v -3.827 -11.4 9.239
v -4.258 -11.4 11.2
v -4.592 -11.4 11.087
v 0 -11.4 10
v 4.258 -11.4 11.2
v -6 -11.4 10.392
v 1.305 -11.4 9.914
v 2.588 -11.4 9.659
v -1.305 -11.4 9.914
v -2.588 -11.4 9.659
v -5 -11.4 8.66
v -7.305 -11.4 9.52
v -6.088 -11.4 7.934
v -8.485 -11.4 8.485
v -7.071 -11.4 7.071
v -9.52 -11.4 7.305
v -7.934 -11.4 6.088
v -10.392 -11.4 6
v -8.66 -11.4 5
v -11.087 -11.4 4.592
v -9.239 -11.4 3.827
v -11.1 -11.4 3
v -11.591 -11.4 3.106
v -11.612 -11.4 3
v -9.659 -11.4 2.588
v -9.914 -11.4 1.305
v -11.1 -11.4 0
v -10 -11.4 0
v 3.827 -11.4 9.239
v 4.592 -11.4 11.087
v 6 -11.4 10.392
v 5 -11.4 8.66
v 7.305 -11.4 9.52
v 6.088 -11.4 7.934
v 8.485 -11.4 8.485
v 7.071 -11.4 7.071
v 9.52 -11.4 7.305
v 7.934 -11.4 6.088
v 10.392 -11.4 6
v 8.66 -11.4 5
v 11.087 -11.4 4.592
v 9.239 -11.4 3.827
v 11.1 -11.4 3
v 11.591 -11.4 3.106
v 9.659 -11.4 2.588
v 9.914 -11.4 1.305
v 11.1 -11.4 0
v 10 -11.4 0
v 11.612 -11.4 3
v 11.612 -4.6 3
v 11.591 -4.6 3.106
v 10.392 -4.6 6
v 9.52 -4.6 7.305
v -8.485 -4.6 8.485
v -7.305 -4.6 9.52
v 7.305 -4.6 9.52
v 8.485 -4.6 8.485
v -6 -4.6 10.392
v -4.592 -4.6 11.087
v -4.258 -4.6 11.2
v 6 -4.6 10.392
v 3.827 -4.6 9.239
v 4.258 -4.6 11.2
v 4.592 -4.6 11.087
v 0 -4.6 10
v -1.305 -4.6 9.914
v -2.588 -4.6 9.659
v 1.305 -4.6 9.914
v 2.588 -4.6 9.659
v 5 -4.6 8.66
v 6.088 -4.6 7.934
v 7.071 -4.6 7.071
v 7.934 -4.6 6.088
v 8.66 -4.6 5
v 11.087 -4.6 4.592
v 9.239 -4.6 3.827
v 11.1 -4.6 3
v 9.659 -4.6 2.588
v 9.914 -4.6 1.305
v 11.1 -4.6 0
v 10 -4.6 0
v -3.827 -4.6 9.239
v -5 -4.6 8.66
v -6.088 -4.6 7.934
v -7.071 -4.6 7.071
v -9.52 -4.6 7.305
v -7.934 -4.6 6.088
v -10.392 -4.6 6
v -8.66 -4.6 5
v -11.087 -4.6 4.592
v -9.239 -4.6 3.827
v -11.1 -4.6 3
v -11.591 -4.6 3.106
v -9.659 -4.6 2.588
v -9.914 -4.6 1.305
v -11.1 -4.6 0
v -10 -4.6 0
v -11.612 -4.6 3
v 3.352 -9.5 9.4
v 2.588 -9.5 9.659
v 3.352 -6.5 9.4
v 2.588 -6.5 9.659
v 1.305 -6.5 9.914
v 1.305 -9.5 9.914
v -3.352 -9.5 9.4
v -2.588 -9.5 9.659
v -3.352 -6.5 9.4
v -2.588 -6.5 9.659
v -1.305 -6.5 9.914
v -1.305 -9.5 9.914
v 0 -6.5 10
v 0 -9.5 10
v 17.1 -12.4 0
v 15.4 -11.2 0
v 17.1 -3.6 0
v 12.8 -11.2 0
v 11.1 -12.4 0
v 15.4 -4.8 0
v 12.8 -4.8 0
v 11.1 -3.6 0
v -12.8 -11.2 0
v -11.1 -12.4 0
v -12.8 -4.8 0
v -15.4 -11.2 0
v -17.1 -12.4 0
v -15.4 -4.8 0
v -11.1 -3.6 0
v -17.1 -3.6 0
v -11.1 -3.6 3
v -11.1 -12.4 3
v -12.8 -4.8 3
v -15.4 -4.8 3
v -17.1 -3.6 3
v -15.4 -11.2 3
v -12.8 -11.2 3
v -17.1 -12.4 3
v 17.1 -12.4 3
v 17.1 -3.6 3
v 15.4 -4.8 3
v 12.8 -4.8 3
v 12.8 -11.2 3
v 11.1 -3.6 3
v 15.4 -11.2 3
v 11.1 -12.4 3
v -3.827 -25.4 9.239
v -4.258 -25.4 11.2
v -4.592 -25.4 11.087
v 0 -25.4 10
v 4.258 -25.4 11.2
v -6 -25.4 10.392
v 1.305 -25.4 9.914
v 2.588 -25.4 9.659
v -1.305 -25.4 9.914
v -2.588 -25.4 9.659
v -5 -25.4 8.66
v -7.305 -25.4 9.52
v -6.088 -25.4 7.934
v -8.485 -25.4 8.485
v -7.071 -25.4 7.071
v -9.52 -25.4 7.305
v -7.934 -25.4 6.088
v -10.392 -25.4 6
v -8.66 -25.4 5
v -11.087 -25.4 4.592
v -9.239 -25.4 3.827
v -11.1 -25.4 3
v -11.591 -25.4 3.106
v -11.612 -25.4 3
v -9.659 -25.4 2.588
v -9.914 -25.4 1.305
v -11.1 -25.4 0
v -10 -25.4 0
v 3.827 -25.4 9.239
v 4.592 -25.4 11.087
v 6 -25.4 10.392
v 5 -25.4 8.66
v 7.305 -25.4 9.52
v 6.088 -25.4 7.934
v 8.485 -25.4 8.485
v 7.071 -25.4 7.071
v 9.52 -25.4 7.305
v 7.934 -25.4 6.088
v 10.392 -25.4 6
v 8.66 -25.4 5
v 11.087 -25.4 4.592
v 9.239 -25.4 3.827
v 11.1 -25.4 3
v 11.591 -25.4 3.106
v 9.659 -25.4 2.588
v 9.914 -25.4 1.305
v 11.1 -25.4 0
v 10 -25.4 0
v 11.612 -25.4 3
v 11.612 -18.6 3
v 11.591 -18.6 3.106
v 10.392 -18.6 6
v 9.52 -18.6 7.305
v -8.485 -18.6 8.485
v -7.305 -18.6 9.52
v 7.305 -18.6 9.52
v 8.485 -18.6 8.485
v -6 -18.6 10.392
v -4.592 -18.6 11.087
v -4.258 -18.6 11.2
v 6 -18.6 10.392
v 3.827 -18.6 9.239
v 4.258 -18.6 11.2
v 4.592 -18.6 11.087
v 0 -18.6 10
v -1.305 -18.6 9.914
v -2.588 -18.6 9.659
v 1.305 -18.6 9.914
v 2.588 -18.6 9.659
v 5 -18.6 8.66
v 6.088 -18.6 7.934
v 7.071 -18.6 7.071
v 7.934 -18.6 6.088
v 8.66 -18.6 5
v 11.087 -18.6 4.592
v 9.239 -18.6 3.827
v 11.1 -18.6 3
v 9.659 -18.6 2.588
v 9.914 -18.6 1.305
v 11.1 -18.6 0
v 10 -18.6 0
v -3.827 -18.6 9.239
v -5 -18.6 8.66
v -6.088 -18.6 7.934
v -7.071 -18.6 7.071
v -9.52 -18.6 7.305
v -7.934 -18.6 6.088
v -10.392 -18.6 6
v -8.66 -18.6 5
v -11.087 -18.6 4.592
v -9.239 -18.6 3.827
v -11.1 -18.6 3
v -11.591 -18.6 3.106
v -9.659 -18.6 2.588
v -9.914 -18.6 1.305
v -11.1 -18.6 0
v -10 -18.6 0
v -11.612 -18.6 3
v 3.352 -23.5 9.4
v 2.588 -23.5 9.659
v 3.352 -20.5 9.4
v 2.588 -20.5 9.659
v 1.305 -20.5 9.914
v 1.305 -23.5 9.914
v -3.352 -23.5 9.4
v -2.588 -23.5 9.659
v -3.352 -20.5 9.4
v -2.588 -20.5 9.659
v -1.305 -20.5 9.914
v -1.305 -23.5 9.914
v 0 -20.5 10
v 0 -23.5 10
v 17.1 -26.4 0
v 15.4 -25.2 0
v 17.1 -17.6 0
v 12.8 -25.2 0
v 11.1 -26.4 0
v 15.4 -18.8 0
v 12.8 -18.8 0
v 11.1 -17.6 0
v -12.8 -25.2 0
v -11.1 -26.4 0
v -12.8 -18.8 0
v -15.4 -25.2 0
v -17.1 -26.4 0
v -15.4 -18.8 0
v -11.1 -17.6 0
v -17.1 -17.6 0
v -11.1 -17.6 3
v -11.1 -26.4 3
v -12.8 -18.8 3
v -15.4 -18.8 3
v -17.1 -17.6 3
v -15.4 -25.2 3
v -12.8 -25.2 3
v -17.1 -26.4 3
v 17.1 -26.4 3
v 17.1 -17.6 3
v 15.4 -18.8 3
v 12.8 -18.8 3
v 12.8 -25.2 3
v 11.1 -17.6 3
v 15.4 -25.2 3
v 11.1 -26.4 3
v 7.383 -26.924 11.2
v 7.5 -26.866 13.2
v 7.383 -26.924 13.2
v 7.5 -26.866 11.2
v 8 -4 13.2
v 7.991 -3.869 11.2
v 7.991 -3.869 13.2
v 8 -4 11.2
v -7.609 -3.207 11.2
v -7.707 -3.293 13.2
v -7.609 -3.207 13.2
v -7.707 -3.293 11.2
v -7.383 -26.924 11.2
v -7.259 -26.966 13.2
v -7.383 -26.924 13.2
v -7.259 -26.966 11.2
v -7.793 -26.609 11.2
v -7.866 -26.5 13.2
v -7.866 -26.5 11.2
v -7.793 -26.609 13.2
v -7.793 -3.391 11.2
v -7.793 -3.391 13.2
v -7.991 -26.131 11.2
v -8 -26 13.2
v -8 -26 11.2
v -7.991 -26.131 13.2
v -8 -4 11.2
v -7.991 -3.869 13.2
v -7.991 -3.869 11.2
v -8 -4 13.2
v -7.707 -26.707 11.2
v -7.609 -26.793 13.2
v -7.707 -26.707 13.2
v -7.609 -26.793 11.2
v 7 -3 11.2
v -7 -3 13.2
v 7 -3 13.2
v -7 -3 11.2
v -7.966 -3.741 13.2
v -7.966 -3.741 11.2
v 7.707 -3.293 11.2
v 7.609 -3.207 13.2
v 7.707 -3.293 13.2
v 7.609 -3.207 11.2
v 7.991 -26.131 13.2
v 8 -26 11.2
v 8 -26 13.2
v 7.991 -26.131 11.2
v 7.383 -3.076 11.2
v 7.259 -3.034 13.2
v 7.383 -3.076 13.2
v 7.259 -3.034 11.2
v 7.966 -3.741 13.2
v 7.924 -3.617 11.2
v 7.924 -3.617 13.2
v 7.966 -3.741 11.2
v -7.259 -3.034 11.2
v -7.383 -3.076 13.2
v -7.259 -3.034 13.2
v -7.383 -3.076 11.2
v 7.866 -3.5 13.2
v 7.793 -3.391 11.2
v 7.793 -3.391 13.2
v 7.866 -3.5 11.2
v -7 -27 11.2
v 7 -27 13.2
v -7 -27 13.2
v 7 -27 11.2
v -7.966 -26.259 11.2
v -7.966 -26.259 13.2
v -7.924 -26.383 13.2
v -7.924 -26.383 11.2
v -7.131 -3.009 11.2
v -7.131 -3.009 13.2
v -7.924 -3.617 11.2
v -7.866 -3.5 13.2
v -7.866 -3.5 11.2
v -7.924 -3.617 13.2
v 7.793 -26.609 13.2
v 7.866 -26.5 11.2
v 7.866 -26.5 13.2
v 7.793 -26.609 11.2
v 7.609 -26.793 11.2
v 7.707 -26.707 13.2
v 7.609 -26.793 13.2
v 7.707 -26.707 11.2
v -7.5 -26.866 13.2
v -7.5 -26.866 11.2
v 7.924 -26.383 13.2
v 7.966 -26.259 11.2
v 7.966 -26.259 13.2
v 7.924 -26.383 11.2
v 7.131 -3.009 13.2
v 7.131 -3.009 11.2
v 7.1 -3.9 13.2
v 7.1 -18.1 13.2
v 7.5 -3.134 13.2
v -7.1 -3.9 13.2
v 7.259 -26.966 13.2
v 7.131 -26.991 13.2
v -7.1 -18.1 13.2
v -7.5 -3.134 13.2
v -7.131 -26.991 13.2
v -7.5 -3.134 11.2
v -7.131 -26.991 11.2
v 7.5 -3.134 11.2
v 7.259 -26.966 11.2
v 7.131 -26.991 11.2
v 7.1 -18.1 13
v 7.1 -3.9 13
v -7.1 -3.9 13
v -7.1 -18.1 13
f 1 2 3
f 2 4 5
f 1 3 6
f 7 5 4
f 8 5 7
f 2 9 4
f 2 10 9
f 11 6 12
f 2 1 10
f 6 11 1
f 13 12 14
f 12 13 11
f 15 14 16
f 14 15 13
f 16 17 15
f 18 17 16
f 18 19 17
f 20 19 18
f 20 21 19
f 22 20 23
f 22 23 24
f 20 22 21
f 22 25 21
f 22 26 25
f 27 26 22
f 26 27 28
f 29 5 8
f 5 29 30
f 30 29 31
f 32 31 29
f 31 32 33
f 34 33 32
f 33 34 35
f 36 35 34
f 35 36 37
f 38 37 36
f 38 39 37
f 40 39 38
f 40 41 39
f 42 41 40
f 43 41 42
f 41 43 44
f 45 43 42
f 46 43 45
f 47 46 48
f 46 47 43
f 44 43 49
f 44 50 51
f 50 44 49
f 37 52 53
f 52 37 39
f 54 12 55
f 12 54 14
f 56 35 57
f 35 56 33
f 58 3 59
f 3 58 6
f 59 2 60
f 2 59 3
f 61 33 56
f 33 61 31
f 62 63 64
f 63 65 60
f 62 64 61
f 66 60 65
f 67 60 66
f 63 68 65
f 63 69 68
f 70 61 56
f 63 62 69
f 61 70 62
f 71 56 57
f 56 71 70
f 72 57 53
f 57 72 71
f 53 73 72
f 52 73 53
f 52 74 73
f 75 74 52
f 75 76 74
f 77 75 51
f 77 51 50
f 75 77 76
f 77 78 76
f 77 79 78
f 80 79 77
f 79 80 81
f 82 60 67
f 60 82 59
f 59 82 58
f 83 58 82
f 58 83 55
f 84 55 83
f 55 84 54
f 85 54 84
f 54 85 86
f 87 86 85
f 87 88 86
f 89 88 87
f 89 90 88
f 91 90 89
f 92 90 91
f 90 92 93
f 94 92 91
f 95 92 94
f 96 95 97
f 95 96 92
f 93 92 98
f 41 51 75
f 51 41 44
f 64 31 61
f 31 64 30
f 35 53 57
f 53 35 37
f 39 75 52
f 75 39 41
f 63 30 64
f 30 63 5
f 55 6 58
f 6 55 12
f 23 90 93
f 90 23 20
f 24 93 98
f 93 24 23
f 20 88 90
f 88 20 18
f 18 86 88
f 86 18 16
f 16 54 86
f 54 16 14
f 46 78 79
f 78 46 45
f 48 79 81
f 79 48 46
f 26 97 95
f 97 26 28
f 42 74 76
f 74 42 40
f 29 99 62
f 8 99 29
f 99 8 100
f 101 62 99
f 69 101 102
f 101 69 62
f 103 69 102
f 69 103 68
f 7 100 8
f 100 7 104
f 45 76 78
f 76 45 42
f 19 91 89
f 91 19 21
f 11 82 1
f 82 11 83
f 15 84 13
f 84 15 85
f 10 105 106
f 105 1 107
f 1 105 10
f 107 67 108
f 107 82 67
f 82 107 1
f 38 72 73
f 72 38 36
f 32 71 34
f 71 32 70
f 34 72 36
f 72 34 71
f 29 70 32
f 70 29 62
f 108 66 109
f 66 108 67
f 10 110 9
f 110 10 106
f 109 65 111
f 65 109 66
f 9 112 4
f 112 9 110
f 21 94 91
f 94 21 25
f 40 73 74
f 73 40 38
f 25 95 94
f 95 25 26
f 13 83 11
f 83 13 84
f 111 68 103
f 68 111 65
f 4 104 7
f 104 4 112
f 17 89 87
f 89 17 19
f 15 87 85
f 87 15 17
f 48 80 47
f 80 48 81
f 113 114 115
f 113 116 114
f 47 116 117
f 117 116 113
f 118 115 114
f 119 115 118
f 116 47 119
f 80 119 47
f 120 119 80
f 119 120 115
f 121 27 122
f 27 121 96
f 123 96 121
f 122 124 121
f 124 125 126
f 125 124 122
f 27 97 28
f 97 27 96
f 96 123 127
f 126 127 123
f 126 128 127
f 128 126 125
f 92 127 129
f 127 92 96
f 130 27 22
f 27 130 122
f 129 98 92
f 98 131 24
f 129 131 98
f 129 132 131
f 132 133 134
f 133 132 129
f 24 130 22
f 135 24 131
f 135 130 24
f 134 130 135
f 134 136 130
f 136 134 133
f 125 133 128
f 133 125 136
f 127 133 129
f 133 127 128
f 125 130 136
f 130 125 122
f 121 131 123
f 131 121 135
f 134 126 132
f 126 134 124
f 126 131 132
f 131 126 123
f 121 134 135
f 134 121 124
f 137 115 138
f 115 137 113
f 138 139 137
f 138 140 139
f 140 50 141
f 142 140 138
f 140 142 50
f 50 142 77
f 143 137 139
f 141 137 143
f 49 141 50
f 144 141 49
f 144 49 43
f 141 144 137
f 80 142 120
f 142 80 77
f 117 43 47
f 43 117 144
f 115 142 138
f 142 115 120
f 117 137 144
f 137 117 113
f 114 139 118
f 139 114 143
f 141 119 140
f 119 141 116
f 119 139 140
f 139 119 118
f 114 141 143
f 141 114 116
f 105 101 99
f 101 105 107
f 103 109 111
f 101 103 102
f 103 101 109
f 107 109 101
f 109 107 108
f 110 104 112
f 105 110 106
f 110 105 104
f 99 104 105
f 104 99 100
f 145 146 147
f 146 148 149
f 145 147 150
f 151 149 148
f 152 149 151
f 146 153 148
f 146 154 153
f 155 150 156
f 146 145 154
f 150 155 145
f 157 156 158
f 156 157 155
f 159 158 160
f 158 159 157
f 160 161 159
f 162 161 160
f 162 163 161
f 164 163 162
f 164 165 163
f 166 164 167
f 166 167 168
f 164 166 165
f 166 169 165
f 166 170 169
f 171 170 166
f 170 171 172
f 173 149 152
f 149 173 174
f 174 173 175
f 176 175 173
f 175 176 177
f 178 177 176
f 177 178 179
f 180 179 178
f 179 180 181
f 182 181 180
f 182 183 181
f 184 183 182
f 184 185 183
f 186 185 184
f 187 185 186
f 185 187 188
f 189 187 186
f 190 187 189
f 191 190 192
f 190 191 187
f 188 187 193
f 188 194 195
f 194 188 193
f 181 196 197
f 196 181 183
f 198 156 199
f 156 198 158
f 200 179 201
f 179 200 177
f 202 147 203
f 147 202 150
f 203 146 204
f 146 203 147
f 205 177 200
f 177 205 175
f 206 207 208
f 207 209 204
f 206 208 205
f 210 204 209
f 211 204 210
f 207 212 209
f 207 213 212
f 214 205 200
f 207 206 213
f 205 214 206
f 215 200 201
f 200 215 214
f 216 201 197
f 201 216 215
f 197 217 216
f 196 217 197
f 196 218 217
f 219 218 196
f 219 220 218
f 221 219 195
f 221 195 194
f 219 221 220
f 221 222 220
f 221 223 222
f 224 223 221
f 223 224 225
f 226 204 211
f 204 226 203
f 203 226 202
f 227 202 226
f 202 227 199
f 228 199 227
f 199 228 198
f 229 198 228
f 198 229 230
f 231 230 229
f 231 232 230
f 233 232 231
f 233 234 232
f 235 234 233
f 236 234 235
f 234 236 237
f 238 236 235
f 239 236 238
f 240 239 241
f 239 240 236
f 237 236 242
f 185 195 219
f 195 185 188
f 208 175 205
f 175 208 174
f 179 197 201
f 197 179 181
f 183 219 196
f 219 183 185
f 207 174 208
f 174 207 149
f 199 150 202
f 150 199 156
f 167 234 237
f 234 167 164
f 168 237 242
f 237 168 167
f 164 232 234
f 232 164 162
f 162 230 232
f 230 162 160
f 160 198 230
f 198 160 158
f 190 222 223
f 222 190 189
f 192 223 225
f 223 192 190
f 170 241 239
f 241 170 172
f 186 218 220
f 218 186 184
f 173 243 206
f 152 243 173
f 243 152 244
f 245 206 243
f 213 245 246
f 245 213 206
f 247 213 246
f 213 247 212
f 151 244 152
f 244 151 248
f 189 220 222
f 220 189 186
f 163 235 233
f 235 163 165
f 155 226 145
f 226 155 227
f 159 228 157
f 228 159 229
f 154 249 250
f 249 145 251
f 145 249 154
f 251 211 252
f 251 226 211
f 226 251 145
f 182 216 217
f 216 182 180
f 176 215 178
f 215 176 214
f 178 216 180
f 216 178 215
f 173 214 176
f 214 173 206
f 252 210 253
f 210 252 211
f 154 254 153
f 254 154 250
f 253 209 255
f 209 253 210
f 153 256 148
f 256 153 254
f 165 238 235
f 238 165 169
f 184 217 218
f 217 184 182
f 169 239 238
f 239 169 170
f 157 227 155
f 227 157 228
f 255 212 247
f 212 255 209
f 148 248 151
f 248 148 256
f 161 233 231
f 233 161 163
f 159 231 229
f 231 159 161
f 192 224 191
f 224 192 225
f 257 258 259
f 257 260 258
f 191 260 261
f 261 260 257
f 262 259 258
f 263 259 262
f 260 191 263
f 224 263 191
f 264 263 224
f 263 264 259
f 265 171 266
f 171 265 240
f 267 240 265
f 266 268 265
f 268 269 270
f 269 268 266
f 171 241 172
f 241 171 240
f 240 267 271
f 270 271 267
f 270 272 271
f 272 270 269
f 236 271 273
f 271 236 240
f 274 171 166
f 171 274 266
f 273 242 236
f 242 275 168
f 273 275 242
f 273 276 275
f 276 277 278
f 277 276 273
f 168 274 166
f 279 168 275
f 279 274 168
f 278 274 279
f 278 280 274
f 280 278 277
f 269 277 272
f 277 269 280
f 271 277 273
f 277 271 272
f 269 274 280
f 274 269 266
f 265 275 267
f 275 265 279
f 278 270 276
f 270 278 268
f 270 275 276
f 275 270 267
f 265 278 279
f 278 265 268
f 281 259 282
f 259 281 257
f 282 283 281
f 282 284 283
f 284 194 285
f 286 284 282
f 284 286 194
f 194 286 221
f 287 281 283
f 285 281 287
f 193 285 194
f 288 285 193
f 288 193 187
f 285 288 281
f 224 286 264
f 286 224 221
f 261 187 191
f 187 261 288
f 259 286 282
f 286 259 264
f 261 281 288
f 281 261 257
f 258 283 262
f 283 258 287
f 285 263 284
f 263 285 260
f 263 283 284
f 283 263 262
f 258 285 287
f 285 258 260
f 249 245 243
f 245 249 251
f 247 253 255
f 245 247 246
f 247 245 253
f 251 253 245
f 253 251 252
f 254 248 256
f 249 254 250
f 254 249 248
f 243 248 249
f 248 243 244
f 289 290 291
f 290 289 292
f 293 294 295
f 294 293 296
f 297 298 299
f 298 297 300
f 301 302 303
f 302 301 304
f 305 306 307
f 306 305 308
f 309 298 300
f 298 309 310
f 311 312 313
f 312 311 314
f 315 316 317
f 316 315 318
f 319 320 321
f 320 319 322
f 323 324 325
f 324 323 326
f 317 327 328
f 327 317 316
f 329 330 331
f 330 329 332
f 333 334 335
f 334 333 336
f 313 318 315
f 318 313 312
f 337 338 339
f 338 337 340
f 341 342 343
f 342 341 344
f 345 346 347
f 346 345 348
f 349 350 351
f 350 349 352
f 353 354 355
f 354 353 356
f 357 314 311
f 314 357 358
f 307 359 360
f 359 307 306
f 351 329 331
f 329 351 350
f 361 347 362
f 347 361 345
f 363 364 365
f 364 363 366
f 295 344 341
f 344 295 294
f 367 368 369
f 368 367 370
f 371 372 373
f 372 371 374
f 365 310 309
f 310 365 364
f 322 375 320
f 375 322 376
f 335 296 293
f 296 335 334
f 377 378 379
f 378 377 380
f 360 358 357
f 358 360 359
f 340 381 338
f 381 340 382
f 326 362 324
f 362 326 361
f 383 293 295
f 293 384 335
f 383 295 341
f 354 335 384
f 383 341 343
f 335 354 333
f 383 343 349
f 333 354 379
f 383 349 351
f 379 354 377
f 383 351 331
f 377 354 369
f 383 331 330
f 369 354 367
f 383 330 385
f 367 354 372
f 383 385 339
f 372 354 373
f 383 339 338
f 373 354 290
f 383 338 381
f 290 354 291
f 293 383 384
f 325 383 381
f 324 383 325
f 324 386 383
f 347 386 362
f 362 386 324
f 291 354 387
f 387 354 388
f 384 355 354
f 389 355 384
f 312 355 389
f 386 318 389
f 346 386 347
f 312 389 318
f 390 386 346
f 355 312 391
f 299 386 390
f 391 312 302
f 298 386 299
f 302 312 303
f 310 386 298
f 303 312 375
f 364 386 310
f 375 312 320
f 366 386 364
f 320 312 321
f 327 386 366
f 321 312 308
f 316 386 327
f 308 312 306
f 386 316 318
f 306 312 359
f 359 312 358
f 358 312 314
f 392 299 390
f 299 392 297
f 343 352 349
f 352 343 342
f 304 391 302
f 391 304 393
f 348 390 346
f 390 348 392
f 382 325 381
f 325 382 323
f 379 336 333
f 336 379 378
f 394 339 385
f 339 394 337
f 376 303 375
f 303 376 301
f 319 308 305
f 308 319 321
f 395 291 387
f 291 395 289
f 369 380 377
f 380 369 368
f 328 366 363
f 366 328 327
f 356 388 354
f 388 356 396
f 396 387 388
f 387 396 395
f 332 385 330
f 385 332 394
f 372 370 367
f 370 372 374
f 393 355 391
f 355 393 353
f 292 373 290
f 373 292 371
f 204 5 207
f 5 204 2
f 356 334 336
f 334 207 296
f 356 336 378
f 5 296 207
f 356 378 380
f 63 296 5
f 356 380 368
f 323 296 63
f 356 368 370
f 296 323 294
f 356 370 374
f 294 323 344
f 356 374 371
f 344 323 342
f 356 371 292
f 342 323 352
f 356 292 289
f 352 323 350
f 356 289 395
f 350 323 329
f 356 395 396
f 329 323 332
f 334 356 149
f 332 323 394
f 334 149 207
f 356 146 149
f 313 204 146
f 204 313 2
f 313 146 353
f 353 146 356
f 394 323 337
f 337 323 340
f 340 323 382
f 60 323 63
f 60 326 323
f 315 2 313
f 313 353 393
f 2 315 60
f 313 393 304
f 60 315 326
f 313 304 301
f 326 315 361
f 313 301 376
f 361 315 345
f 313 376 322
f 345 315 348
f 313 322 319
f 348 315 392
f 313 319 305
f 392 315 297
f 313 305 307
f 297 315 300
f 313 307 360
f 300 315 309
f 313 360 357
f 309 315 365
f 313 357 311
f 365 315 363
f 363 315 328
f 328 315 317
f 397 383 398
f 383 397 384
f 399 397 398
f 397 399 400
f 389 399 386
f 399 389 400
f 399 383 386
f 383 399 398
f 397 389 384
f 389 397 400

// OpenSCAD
// ReachSense six-finger wrap v2. Units: mm. Experimental, physically unverified.
// R: +X lateral, +Y distal (towards fingertip), +Z dorsal.
// A REMOVABLE seating gauge defines Y=0. The wearable deck ends at Y=-3.
// Remove the gauge before testing; no permanent wall blocks the fingertip.
// This defines nominal longitudinal registration, NOT an anatomical 3D point.
$fn = 48;
part = "holder"; // "holder", "gauge" or "strap"
marker_id = 21;
finger_diameter_mm = 20;
marker_edge_mm = 10;
quiet_zone_mm = 2;
frame_mm = 1;
wall_mm = 2;
stop_wall_mm = 1.2;
strap_width_mm = 6;
strap_length_mm = 90;
gauge_side_clearance_mm = 0.3;
r = finger_diameter_mm/2;
tile = marker_edge_mm + 2*quiet_zone_mm;
deck_width = tile + 2*frame_mm;
length = tile + 2*frame_mm + 8;
deck_front_y = -3;
deck_back_y = deck_front_y-length;
deck_bottom = r + wall_mm - 0.8;
deck_top = deck_bottom + 2;
pocket_depth = 0.2;
marker_y = deck_front_y-(frame_mm+quiet_zone_mm+marker_edge_mm/2);
support_y = [deck_front_y-5,deck_back_y+5];
nail_seat_width = min(8,finger_diameter_mm/2);
nail_seat_z = r-0.6;
assert(finger_diameter_mm >= 12 && finger_diameter_mm <= 26,"Choose a 12–26 mm candidate opening");
assert(marker_edge_mm >= 8 && marker_edge_mm <= 16,"Choose an 8–16 mm black edge");
assert(quiet_zone_mm >= 2,"Keep the full white quiet zone");
assert(marker_id >= 0 && marker_id < 100,"DICT_4X4_100 ID required");
module support(y) {
    translate([0,y,0]) intersection() {
        difference() {
            rotate([90,0,0]) cylinder(r=r+wall_mm,h=6.8,center=true);
            rotate([90,0,0]) cylinder(r=r,h=8.8,center=true);
        }
        translate([-r-wall_mm-1,-4.4,0]) cube([2*(r+wall_mm+1),8.8,r+wall_mm+1]);
    }
    // Flat dorsal bearing at each strap region closes the gap below the deck.
    // Contact with a real nail/dorsal surface and rotational retention are unverified.
    translate([-nail_seat_width/2,y-1.5,nail_seat_z])
        cube([nail_seat_width,3,deck_bottom-nail_seat_z+0.2]);
    for(sign=[-1,1]) translate([sign*(r+wall_mm+2.1),y,1.5]) difference() {
        cube([6,8.8,3],center=true);
        cube([2.6,6.4,5],center=true);
    }
}
module deck() {
    // Rounded corners retain a straight central gauge abutment at Y=-3.
    hull() for(x=[-deck_width/2+1,deck_width/2-1])
        for(y=[deck_back_y+1,deck_front_y-1])
            translate([x,y,deck_bottom]) cylinder(r=1,h=2);
}
module holder() {
    difference() {
        union() { for(y=support_y) support(y); deck(); }
        translate([-tile/2-0.1,marker_y-tile/2-0.1,deck_top-pocket_depth])
            cube([tile+0.2,tile+0.2,pocket_depth+1]);
    }
}
module gauge() {
    // Hand-held drop-on gauge, NOT a validated snap fit. Hold its proximal
    // abutment against the deck's front face at Y=-3 while gently seating the finger.
    // Feet sit on the bare side frame; the ArUco pocket remains clear.
    union() {
        translate([-deck_width/2-2.3,deck_front_y,deck_top])
            cube([deck_width+4.6,-deck_front_y+stop_wall_mm,1.2]);
        // Deck contact Y=-3; fingertip contact Y=0. Remove upwards after tightening.
        translate([-deck_width/2+1,deck_front_y,deck_bottom])
            cube([deck_width-2,-deck_front_y,deck_top-deck_bottom+0.5]);
        translate([-deck_width/2,0,-r/2])
            cube([deck_width,stop_wall_mm,deck_top+1.2+r/2]);
        for(sign=[-1,1]) {
            x=sign>0 ? deck_width/2+gauge_side_clearance_mm : -deck_width/2-gauge_side_clearance_mm-2;
            translate([x,-10,deck_bottom]) cube([2,10,deck_top-deck_bottom+1.2]);
            foot_x=sign>0 ? deck_width/2-0.8 : -deck_width/2-2.3;
            translate([foot_x,-10,deck_top]) cube([3.1,10,1.2]);
        }
    }
}
module strap() {
    // TPU-only ladder strip. Ends require a return loop/fastener or hook-and-loop.
    union() {
        translate([-strap_length_mm/2,-strap_width_mm/2,0]) cube([strap_length_mm,strap_width_mm,0.8]);
        for(x=[-strap_length_mm/2+3:4:strap_length_mm/2-3])
            translate([x-0.7,-strap_width_mm/2,0.8]) cube([1.4,strap_width_mm,0.5]);
    }
}
if(part=="strap") strap(); else if(part=="gauge") gauge(); else holder();
echo(reference_plane_y_mm=0,deck_front_y_mm=deck_front_y);
echo(marker_center_R_mm=[0,marker_y,deck_top-pocket_depth+0.15]);
echo(marker_center_to_reference_plane_mm=-marker_y);
